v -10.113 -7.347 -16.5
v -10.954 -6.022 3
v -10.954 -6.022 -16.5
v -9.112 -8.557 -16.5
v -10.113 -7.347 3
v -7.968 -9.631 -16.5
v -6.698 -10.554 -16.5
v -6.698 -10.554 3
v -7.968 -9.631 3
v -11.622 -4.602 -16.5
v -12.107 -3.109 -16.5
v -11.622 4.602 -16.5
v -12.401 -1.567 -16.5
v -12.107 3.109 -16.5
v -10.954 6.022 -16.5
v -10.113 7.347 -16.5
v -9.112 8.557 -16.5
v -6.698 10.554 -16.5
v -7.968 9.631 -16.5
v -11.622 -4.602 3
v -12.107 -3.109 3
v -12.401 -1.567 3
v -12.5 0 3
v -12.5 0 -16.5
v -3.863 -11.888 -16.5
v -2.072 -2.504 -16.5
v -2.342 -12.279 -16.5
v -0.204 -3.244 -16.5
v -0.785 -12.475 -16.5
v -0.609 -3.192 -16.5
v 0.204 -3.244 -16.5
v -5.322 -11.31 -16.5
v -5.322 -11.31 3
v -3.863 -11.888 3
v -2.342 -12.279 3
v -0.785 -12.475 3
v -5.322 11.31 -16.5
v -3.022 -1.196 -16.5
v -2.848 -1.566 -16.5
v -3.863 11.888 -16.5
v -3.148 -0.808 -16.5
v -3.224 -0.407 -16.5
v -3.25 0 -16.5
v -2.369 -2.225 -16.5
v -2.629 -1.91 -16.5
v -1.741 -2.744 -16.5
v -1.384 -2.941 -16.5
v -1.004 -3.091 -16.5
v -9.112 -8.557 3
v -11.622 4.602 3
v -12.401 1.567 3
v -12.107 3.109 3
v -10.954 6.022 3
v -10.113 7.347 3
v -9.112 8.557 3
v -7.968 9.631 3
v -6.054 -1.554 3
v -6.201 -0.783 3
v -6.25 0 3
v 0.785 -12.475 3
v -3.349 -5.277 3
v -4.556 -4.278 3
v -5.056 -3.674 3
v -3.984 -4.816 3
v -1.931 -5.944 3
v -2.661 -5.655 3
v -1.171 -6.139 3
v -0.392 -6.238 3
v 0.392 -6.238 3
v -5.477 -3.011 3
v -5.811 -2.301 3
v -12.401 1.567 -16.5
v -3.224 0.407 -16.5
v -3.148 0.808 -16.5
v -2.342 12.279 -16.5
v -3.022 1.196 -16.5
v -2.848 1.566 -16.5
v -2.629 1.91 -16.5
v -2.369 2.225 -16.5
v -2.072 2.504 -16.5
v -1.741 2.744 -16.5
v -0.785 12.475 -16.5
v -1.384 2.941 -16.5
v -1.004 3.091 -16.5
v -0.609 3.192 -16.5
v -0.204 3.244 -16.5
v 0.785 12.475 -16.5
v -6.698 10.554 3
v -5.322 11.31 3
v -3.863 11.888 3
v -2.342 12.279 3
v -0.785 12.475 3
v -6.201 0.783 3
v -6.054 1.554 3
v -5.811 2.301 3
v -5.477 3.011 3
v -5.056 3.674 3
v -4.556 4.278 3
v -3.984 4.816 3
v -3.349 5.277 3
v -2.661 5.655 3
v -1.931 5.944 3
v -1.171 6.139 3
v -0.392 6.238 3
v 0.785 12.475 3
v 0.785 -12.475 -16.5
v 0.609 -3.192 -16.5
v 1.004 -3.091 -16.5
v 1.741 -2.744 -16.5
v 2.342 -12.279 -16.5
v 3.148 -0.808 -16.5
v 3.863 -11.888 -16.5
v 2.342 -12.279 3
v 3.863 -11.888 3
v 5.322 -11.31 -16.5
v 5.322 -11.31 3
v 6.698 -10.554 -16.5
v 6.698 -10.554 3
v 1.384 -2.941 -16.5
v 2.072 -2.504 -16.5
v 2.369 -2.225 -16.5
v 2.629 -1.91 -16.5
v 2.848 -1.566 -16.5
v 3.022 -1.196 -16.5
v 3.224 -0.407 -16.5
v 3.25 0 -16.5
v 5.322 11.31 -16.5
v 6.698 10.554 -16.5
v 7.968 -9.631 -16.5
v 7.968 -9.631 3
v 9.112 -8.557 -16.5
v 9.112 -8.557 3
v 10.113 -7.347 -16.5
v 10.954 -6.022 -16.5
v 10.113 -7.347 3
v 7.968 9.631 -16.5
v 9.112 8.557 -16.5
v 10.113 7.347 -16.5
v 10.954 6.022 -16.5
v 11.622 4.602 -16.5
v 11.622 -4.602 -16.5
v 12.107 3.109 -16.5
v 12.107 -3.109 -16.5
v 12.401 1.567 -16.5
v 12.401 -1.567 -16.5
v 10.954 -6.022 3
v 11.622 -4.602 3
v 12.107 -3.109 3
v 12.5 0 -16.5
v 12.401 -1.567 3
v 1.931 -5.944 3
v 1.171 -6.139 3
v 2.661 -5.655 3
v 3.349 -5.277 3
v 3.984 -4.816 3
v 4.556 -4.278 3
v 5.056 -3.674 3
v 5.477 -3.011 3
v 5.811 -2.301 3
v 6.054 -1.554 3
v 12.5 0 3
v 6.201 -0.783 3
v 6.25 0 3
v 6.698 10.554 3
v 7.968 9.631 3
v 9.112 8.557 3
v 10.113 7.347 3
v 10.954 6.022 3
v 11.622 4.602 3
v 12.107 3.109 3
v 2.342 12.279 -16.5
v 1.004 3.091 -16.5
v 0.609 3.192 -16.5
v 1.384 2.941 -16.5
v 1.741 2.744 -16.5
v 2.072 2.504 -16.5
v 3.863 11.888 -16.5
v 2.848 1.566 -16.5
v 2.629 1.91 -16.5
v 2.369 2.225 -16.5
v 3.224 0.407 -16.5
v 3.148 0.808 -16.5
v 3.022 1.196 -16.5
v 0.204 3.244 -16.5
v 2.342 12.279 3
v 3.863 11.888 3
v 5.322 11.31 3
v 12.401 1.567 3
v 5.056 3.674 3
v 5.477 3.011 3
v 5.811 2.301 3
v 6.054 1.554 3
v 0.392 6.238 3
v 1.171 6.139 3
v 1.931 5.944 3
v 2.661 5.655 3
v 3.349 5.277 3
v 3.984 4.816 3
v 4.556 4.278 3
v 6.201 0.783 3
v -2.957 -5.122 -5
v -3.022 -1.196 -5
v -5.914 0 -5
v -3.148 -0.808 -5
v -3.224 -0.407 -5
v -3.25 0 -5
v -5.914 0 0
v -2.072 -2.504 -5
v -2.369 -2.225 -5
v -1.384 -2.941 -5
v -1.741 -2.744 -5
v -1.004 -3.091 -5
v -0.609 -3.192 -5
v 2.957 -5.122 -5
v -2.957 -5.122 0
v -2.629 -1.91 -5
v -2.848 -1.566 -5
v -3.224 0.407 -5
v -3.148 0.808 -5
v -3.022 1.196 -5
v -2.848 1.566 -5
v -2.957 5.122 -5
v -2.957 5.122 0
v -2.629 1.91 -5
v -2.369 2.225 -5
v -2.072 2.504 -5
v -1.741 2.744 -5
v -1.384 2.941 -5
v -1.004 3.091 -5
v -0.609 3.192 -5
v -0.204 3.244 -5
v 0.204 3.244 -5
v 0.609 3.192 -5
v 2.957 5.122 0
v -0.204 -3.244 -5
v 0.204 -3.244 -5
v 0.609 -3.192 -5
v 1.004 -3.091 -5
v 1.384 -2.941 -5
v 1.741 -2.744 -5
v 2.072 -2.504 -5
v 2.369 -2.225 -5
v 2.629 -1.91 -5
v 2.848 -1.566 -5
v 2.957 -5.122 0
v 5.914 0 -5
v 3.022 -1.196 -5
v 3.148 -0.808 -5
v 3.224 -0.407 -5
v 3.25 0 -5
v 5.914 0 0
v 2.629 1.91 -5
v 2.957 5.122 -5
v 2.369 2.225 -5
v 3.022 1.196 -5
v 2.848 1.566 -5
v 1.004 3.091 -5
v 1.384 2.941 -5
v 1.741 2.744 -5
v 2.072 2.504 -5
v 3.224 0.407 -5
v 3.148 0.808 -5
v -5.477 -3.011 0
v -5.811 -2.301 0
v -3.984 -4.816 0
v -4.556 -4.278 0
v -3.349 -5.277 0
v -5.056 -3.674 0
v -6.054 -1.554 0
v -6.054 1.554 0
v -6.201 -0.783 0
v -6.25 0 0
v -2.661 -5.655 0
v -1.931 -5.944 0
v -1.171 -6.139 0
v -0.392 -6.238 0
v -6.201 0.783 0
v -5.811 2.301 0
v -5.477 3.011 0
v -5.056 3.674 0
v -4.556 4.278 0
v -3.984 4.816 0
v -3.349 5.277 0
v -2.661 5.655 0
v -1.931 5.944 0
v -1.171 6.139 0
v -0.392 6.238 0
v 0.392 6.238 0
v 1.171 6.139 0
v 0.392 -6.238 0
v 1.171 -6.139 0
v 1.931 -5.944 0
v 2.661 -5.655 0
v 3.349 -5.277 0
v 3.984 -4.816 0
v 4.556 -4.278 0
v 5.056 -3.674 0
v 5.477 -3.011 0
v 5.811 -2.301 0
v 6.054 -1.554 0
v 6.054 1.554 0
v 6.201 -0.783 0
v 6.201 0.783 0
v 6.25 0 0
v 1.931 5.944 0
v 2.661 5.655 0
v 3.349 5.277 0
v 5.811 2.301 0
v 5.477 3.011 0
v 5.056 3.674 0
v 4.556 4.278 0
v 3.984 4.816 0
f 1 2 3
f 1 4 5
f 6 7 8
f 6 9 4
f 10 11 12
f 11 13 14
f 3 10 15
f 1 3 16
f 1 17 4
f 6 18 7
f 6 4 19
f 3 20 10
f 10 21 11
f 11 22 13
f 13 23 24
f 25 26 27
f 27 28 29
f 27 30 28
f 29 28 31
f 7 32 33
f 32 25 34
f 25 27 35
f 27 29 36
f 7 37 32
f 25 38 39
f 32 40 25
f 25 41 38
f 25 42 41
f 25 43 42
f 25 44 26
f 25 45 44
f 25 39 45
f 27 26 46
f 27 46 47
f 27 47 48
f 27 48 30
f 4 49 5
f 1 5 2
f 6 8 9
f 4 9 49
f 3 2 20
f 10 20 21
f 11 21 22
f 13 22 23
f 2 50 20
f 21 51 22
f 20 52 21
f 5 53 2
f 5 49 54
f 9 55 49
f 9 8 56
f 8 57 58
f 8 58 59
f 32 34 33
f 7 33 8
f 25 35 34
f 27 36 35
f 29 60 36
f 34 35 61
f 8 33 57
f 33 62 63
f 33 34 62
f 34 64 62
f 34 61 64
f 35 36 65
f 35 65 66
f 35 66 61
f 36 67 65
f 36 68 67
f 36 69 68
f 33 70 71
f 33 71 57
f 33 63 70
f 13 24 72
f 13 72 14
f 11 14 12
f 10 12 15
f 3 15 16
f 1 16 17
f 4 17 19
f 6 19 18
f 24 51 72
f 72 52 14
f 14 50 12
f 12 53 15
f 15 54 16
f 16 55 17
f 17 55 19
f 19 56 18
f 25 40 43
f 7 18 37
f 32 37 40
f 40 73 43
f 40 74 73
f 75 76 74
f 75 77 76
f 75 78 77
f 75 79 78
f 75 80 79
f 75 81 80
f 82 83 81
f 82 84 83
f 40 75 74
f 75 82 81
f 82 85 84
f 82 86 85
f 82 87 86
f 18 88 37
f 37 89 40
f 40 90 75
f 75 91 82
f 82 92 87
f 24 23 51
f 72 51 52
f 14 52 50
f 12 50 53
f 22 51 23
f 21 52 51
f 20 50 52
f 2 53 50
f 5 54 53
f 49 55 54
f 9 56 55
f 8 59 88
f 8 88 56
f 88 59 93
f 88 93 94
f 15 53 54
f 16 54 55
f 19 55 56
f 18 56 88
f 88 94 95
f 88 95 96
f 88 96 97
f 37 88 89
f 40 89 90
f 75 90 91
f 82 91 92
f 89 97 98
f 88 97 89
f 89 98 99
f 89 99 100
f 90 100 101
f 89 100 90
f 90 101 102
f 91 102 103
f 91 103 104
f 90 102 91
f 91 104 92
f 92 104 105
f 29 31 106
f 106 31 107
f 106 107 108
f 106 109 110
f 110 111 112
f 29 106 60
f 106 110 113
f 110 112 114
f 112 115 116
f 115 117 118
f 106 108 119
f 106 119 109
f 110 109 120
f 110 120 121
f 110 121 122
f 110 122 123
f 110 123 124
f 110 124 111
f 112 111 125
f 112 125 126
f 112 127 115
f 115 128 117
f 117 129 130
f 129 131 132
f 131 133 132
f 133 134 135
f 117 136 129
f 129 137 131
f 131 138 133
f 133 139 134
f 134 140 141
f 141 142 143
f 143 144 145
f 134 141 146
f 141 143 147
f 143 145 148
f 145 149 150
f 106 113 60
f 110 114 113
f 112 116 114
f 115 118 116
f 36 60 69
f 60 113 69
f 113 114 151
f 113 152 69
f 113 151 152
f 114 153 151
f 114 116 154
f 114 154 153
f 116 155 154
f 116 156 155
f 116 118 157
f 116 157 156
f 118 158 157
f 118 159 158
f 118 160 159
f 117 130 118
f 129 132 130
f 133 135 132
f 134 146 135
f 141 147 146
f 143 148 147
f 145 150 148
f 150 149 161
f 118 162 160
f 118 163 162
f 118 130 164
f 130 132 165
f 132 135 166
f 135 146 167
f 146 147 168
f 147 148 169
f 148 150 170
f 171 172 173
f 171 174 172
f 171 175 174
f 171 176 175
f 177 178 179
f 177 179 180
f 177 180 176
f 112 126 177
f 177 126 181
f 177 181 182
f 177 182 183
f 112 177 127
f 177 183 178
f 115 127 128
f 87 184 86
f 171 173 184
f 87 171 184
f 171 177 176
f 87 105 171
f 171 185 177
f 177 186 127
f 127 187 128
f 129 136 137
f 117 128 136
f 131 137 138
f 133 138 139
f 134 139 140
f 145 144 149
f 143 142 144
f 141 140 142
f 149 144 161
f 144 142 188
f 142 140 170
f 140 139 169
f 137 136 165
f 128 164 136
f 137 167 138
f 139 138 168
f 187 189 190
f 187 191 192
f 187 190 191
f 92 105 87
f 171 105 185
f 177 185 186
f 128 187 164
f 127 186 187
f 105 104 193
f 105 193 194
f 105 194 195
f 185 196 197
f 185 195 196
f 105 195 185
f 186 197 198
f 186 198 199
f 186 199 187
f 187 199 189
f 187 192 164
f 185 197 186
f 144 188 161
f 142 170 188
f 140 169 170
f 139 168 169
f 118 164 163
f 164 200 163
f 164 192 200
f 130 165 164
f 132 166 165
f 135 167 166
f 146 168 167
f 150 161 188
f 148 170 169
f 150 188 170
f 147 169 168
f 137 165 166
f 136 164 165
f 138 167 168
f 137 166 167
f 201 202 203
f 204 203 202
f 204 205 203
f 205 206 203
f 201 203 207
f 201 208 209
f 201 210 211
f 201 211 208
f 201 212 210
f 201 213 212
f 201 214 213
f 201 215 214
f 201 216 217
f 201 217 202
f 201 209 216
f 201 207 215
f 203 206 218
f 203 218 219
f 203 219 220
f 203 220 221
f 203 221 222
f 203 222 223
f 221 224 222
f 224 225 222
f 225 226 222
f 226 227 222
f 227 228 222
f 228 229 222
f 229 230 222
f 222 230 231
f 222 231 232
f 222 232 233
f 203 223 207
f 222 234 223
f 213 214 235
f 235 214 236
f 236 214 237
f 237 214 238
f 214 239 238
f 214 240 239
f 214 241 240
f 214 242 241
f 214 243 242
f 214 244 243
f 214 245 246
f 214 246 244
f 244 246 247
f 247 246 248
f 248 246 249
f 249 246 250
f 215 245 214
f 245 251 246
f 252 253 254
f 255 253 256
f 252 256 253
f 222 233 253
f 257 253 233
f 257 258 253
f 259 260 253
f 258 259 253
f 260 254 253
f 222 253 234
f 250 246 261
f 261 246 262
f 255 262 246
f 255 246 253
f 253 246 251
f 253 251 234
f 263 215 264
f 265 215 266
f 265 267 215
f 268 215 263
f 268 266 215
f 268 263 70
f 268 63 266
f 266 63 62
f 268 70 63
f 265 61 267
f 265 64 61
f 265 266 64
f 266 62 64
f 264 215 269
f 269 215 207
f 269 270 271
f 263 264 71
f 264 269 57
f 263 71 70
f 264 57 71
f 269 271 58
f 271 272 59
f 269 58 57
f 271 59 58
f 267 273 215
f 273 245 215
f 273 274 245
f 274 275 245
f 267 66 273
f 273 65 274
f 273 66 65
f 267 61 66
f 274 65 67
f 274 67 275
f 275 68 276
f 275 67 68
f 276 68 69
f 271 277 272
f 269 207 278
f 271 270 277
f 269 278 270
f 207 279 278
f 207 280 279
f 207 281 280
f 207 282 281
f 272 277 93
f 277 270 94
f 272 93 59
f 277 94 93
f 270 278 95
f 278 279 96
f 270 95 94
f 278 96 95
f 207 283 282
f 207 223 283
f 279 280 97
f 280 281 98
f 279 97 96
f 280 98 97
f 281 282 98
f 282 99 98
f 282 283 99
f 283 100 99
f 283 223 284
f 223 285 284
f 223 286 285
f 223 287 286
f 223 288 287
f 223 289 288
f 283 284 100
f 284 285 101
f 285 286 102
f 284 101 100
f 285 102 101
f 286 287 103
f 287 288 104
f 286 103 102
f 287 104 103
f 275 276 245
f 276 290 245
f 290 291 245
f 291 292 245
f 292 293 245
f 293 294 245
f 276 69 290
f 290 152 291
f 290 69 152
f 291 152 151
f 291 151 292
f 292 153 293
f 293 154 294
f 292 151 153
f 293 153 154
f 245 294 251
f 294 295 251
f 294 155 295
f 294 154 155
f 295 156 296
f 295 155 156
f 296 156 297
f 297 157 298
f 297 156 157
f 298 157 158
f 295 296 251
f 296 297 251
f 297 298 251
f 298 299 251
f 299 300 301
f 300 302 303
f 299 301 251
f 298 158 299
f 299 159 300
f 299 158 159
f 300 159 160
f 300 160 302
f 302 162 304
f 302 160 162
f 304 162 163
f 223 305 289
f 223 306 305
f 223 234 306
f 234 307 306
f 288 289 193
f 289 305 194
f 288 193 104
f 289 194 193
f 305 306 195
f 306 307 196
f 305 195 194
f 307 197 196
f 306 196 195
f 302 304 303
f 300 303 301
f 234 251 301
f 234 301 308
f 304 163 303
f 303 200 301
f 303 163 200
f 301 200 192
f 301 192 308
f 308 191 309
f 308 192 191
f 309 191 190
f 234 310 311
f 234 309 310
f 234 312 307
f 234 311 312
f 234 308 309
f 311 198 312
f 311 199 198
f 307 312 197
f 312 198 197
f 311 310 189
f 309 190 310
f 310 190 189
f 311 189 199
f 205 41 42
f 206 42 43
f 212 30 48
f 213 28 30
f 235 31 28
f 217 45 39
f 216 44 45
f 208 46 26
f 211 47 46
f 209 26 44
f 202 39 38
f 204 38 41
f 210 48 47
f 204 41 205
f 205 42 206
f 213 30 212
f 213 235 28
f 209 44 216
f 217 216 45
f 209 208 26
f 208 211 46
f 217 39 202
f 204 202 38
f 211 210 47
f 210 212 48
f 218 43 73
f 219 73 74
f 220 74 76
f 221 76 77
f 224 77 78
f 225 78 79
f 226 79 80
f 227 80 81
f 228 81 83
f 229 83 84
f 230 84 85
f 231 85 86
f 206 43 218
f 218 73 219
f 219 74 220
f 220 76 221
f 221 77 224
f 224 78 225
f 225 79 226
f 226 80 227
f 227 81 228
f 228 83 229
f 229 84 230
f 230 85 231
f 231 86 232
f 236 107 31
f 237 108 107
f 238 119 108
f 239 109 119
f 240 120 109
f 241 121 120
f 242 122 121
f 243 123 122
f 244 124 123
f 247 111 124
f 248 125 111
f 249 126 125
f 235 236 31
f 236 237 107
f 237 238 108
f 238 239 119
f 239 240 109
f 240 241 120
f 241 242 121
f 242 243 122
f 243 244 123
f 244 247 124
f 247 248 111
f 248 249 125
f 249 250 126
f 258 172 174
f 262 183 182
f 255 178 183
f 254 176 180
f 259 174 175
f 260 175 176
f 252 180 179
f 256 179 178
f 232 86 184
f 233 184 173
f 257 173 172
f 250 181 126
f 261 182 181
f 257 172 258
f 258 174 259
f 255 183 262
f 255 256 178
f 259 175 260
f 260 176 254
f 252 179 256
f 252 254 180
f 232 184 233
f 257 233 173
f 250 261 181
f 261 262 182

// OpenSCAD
$fn = 50;

difference() {
	union() {
		translate(v = [0, 0, -16.5]) {
			cylinder(h = 19.5, r = 12.5);
		}
		#translate(v = [0, 0, -18.0]) {
			cylinder(h = 18, r = 2.875);
		}
	}
	union() {
		translate(v = [0, 0, 0]) {
			rotate(a = [0, 0, 0]) {
				difference() {
					union() {
						translate(v = [0, 0, -5]) {
							linear_extrude(height = 5) {
								polygon(points = [[5.914249999999999, 0.0], [2.957125, 5.1218907443321156], [-2.9571249999999982, 5.1218907443321156], [-5.914249999999999, 7.242867331857232e-16], [-2.9571250000000022, -5.121890744332115], [2.9571249999999956, -5.121890744332118]]);
							}
						}
					}
					union();
				}
			}
		}
		#cylinder(h = 3, r = 6.25);
		#translate(v = [0, 0, -100.0]) {
			cylinder(h = 200, r = 3.25);
		}
	}
}
